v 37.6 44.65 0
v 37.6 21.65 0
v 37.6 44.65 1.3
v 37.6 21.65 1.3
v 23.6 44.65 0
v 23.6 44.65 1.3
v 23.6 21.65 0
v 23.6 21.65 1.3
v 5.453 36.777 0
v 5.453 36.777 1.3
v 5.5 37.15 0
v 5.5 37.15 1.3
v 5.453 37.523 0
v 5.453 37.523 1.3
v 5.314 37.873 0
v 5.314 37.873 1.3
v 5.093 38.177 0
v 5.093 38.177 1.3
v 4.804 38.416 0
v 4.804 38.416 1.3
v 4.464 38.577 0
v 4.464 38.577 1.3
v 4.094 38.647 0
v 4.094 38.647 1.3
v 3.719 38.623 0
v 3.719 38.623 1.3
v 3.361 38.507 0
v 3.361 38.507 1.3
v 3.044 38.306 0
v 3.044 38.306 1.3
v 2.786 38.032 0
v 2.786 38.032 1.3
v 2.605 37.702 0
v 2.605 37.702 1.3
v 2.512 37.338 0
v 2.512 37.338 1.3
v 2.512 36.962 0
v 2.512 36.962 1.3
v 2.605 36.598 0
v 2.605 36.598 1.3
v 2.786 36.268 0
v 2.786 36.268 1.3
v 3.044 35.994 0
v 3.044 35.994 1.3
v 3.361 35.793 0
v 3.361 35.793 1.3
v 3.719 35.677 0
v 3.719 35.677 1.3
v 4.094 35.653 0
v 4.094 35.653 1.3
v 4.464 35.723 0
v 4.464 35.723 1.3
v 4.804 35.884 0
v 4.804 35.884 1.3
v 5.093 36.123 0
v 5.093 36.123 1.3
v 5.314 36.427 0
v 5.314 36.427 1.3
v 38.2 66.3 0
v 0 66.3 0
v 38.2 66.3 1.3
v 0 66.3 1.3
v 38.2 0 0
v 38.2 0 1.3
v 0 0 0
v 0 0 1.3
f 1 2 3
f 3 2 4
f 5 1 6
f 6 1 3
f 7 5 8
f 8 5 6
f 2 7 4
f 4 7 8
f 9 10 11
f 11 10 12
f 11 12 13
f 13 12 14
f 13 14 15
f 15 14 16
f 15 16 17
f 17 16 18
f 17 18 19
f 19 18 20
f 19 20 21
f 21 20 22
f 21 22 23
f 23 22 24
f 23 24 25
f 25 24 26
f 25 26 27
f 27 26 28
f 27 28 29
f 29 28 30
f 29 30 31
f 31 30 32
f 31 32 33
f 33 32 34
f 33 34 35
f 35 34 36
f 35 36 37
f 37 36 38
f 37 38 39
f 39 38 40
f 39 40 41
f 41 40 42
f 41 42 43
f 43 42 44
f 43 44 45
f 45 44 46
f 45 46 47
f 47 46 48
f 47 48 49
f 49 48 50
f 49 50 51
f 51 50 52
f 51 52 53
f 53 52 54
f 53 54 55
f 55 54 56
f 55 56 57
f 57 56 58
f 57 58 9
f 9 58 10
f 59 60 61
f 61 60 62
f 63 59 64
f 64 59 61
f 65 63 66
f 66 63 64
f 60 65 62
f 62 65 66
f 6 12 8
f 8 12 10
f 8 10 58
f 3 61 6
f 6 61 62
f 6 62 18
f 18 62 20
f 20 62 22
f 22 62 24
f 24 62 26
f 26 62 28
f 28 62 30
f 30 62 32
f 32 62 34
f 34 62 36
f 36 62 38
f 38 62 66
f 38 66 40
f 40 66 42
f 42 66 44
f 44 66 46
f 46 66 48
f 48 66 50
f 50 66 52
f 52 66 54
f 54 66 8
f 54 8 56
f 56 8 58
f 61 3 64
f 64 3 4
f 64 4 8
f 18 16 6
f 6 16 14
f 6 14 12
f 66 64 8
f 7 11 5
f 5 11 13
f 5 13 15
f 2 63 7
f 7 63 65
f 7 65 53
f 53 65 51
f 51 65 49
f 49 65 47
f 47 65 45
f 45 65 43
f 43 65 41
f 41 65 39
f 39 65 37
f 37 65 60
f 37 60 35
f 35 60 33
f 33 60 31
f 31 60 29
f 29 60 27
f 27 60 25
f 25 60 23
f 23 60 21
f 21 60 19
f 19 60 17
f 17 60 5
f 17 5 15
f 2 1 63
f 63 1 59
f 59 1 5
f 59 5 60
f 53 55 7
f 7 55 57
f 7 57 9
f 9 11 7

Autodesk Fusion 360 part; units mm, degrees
sketch "Sketch1" plane through (0, 0, 0) normal (0, 0, 1) x (1, 0, 0)
  line L0 (0, 0) -> (38.2, 0)
  line L1 (38.2, 0) -> (38.2, 66.3)
  line L2 (38.2, 66.3) -> (0, 66.3)
  line L3 (0, 66.3) -> (0, 0)
  dimension "d1" = 38.2
  dimension "d2" = 66.3
extrude "Extrude1" add sketch "Sketch1" along normal blind 1.3
sketch "Sketch2" plane through (0, 0, 1.3) normal (0, 0, 1) x (-1, 0, 0)
  line L0 (0, -66.3) -> (0, 0)
  line L1 (0, 0) -> (-38.2, 0)
  line L2 (-38.2, 0) -> (-38.2, -66.3)
  line L3 (-38.2, -66.3) -> (0, -66.3)
  line L4 (-0.6, -63.65) -> (-37.6, -63.65)
  line L5 (-37.6, -63.65) -> (-37.6, -2.65)
  line L6 (-37.6, -2.65) -> (-0.6, -2.65)
  line L7 (-0.6, -2.65) -> (-0.6, -63.65)
  line L8 (-37.6, -21.65) -> (-23.6, -21.65)
  line L9 (-23.6, -21.65) -> (-23.6, -44.65)
  line L10 (-23.6, -44.65) -> (-37.6, -44.65)
  line L11 (-37.6, -44.65) -> (-37.6, -21.65)
  line L12 (-0.6, -37.15) -> (-4, -37.15) construction
  circle A0 centre (-4, -37.15) radius 1.5
  dimension "d5" = 37
  dimension "d6" = 61
  dimension "d7" = 2.65
  dimension "d8" = 0.6
  dimension "d9" = 14
  dimension "d10" = 19
  dimension "d11" = 19
  dimension "d12" = 26.5
  dimension "d13" = 3
extrude "Extrude2" cut sketch "Sketch2" against normal blind 78 contours A0
extrude "Extrude3" cut sketch "Sketch2" against normal blind 2 contours L5 L8 L9 L10 L11
